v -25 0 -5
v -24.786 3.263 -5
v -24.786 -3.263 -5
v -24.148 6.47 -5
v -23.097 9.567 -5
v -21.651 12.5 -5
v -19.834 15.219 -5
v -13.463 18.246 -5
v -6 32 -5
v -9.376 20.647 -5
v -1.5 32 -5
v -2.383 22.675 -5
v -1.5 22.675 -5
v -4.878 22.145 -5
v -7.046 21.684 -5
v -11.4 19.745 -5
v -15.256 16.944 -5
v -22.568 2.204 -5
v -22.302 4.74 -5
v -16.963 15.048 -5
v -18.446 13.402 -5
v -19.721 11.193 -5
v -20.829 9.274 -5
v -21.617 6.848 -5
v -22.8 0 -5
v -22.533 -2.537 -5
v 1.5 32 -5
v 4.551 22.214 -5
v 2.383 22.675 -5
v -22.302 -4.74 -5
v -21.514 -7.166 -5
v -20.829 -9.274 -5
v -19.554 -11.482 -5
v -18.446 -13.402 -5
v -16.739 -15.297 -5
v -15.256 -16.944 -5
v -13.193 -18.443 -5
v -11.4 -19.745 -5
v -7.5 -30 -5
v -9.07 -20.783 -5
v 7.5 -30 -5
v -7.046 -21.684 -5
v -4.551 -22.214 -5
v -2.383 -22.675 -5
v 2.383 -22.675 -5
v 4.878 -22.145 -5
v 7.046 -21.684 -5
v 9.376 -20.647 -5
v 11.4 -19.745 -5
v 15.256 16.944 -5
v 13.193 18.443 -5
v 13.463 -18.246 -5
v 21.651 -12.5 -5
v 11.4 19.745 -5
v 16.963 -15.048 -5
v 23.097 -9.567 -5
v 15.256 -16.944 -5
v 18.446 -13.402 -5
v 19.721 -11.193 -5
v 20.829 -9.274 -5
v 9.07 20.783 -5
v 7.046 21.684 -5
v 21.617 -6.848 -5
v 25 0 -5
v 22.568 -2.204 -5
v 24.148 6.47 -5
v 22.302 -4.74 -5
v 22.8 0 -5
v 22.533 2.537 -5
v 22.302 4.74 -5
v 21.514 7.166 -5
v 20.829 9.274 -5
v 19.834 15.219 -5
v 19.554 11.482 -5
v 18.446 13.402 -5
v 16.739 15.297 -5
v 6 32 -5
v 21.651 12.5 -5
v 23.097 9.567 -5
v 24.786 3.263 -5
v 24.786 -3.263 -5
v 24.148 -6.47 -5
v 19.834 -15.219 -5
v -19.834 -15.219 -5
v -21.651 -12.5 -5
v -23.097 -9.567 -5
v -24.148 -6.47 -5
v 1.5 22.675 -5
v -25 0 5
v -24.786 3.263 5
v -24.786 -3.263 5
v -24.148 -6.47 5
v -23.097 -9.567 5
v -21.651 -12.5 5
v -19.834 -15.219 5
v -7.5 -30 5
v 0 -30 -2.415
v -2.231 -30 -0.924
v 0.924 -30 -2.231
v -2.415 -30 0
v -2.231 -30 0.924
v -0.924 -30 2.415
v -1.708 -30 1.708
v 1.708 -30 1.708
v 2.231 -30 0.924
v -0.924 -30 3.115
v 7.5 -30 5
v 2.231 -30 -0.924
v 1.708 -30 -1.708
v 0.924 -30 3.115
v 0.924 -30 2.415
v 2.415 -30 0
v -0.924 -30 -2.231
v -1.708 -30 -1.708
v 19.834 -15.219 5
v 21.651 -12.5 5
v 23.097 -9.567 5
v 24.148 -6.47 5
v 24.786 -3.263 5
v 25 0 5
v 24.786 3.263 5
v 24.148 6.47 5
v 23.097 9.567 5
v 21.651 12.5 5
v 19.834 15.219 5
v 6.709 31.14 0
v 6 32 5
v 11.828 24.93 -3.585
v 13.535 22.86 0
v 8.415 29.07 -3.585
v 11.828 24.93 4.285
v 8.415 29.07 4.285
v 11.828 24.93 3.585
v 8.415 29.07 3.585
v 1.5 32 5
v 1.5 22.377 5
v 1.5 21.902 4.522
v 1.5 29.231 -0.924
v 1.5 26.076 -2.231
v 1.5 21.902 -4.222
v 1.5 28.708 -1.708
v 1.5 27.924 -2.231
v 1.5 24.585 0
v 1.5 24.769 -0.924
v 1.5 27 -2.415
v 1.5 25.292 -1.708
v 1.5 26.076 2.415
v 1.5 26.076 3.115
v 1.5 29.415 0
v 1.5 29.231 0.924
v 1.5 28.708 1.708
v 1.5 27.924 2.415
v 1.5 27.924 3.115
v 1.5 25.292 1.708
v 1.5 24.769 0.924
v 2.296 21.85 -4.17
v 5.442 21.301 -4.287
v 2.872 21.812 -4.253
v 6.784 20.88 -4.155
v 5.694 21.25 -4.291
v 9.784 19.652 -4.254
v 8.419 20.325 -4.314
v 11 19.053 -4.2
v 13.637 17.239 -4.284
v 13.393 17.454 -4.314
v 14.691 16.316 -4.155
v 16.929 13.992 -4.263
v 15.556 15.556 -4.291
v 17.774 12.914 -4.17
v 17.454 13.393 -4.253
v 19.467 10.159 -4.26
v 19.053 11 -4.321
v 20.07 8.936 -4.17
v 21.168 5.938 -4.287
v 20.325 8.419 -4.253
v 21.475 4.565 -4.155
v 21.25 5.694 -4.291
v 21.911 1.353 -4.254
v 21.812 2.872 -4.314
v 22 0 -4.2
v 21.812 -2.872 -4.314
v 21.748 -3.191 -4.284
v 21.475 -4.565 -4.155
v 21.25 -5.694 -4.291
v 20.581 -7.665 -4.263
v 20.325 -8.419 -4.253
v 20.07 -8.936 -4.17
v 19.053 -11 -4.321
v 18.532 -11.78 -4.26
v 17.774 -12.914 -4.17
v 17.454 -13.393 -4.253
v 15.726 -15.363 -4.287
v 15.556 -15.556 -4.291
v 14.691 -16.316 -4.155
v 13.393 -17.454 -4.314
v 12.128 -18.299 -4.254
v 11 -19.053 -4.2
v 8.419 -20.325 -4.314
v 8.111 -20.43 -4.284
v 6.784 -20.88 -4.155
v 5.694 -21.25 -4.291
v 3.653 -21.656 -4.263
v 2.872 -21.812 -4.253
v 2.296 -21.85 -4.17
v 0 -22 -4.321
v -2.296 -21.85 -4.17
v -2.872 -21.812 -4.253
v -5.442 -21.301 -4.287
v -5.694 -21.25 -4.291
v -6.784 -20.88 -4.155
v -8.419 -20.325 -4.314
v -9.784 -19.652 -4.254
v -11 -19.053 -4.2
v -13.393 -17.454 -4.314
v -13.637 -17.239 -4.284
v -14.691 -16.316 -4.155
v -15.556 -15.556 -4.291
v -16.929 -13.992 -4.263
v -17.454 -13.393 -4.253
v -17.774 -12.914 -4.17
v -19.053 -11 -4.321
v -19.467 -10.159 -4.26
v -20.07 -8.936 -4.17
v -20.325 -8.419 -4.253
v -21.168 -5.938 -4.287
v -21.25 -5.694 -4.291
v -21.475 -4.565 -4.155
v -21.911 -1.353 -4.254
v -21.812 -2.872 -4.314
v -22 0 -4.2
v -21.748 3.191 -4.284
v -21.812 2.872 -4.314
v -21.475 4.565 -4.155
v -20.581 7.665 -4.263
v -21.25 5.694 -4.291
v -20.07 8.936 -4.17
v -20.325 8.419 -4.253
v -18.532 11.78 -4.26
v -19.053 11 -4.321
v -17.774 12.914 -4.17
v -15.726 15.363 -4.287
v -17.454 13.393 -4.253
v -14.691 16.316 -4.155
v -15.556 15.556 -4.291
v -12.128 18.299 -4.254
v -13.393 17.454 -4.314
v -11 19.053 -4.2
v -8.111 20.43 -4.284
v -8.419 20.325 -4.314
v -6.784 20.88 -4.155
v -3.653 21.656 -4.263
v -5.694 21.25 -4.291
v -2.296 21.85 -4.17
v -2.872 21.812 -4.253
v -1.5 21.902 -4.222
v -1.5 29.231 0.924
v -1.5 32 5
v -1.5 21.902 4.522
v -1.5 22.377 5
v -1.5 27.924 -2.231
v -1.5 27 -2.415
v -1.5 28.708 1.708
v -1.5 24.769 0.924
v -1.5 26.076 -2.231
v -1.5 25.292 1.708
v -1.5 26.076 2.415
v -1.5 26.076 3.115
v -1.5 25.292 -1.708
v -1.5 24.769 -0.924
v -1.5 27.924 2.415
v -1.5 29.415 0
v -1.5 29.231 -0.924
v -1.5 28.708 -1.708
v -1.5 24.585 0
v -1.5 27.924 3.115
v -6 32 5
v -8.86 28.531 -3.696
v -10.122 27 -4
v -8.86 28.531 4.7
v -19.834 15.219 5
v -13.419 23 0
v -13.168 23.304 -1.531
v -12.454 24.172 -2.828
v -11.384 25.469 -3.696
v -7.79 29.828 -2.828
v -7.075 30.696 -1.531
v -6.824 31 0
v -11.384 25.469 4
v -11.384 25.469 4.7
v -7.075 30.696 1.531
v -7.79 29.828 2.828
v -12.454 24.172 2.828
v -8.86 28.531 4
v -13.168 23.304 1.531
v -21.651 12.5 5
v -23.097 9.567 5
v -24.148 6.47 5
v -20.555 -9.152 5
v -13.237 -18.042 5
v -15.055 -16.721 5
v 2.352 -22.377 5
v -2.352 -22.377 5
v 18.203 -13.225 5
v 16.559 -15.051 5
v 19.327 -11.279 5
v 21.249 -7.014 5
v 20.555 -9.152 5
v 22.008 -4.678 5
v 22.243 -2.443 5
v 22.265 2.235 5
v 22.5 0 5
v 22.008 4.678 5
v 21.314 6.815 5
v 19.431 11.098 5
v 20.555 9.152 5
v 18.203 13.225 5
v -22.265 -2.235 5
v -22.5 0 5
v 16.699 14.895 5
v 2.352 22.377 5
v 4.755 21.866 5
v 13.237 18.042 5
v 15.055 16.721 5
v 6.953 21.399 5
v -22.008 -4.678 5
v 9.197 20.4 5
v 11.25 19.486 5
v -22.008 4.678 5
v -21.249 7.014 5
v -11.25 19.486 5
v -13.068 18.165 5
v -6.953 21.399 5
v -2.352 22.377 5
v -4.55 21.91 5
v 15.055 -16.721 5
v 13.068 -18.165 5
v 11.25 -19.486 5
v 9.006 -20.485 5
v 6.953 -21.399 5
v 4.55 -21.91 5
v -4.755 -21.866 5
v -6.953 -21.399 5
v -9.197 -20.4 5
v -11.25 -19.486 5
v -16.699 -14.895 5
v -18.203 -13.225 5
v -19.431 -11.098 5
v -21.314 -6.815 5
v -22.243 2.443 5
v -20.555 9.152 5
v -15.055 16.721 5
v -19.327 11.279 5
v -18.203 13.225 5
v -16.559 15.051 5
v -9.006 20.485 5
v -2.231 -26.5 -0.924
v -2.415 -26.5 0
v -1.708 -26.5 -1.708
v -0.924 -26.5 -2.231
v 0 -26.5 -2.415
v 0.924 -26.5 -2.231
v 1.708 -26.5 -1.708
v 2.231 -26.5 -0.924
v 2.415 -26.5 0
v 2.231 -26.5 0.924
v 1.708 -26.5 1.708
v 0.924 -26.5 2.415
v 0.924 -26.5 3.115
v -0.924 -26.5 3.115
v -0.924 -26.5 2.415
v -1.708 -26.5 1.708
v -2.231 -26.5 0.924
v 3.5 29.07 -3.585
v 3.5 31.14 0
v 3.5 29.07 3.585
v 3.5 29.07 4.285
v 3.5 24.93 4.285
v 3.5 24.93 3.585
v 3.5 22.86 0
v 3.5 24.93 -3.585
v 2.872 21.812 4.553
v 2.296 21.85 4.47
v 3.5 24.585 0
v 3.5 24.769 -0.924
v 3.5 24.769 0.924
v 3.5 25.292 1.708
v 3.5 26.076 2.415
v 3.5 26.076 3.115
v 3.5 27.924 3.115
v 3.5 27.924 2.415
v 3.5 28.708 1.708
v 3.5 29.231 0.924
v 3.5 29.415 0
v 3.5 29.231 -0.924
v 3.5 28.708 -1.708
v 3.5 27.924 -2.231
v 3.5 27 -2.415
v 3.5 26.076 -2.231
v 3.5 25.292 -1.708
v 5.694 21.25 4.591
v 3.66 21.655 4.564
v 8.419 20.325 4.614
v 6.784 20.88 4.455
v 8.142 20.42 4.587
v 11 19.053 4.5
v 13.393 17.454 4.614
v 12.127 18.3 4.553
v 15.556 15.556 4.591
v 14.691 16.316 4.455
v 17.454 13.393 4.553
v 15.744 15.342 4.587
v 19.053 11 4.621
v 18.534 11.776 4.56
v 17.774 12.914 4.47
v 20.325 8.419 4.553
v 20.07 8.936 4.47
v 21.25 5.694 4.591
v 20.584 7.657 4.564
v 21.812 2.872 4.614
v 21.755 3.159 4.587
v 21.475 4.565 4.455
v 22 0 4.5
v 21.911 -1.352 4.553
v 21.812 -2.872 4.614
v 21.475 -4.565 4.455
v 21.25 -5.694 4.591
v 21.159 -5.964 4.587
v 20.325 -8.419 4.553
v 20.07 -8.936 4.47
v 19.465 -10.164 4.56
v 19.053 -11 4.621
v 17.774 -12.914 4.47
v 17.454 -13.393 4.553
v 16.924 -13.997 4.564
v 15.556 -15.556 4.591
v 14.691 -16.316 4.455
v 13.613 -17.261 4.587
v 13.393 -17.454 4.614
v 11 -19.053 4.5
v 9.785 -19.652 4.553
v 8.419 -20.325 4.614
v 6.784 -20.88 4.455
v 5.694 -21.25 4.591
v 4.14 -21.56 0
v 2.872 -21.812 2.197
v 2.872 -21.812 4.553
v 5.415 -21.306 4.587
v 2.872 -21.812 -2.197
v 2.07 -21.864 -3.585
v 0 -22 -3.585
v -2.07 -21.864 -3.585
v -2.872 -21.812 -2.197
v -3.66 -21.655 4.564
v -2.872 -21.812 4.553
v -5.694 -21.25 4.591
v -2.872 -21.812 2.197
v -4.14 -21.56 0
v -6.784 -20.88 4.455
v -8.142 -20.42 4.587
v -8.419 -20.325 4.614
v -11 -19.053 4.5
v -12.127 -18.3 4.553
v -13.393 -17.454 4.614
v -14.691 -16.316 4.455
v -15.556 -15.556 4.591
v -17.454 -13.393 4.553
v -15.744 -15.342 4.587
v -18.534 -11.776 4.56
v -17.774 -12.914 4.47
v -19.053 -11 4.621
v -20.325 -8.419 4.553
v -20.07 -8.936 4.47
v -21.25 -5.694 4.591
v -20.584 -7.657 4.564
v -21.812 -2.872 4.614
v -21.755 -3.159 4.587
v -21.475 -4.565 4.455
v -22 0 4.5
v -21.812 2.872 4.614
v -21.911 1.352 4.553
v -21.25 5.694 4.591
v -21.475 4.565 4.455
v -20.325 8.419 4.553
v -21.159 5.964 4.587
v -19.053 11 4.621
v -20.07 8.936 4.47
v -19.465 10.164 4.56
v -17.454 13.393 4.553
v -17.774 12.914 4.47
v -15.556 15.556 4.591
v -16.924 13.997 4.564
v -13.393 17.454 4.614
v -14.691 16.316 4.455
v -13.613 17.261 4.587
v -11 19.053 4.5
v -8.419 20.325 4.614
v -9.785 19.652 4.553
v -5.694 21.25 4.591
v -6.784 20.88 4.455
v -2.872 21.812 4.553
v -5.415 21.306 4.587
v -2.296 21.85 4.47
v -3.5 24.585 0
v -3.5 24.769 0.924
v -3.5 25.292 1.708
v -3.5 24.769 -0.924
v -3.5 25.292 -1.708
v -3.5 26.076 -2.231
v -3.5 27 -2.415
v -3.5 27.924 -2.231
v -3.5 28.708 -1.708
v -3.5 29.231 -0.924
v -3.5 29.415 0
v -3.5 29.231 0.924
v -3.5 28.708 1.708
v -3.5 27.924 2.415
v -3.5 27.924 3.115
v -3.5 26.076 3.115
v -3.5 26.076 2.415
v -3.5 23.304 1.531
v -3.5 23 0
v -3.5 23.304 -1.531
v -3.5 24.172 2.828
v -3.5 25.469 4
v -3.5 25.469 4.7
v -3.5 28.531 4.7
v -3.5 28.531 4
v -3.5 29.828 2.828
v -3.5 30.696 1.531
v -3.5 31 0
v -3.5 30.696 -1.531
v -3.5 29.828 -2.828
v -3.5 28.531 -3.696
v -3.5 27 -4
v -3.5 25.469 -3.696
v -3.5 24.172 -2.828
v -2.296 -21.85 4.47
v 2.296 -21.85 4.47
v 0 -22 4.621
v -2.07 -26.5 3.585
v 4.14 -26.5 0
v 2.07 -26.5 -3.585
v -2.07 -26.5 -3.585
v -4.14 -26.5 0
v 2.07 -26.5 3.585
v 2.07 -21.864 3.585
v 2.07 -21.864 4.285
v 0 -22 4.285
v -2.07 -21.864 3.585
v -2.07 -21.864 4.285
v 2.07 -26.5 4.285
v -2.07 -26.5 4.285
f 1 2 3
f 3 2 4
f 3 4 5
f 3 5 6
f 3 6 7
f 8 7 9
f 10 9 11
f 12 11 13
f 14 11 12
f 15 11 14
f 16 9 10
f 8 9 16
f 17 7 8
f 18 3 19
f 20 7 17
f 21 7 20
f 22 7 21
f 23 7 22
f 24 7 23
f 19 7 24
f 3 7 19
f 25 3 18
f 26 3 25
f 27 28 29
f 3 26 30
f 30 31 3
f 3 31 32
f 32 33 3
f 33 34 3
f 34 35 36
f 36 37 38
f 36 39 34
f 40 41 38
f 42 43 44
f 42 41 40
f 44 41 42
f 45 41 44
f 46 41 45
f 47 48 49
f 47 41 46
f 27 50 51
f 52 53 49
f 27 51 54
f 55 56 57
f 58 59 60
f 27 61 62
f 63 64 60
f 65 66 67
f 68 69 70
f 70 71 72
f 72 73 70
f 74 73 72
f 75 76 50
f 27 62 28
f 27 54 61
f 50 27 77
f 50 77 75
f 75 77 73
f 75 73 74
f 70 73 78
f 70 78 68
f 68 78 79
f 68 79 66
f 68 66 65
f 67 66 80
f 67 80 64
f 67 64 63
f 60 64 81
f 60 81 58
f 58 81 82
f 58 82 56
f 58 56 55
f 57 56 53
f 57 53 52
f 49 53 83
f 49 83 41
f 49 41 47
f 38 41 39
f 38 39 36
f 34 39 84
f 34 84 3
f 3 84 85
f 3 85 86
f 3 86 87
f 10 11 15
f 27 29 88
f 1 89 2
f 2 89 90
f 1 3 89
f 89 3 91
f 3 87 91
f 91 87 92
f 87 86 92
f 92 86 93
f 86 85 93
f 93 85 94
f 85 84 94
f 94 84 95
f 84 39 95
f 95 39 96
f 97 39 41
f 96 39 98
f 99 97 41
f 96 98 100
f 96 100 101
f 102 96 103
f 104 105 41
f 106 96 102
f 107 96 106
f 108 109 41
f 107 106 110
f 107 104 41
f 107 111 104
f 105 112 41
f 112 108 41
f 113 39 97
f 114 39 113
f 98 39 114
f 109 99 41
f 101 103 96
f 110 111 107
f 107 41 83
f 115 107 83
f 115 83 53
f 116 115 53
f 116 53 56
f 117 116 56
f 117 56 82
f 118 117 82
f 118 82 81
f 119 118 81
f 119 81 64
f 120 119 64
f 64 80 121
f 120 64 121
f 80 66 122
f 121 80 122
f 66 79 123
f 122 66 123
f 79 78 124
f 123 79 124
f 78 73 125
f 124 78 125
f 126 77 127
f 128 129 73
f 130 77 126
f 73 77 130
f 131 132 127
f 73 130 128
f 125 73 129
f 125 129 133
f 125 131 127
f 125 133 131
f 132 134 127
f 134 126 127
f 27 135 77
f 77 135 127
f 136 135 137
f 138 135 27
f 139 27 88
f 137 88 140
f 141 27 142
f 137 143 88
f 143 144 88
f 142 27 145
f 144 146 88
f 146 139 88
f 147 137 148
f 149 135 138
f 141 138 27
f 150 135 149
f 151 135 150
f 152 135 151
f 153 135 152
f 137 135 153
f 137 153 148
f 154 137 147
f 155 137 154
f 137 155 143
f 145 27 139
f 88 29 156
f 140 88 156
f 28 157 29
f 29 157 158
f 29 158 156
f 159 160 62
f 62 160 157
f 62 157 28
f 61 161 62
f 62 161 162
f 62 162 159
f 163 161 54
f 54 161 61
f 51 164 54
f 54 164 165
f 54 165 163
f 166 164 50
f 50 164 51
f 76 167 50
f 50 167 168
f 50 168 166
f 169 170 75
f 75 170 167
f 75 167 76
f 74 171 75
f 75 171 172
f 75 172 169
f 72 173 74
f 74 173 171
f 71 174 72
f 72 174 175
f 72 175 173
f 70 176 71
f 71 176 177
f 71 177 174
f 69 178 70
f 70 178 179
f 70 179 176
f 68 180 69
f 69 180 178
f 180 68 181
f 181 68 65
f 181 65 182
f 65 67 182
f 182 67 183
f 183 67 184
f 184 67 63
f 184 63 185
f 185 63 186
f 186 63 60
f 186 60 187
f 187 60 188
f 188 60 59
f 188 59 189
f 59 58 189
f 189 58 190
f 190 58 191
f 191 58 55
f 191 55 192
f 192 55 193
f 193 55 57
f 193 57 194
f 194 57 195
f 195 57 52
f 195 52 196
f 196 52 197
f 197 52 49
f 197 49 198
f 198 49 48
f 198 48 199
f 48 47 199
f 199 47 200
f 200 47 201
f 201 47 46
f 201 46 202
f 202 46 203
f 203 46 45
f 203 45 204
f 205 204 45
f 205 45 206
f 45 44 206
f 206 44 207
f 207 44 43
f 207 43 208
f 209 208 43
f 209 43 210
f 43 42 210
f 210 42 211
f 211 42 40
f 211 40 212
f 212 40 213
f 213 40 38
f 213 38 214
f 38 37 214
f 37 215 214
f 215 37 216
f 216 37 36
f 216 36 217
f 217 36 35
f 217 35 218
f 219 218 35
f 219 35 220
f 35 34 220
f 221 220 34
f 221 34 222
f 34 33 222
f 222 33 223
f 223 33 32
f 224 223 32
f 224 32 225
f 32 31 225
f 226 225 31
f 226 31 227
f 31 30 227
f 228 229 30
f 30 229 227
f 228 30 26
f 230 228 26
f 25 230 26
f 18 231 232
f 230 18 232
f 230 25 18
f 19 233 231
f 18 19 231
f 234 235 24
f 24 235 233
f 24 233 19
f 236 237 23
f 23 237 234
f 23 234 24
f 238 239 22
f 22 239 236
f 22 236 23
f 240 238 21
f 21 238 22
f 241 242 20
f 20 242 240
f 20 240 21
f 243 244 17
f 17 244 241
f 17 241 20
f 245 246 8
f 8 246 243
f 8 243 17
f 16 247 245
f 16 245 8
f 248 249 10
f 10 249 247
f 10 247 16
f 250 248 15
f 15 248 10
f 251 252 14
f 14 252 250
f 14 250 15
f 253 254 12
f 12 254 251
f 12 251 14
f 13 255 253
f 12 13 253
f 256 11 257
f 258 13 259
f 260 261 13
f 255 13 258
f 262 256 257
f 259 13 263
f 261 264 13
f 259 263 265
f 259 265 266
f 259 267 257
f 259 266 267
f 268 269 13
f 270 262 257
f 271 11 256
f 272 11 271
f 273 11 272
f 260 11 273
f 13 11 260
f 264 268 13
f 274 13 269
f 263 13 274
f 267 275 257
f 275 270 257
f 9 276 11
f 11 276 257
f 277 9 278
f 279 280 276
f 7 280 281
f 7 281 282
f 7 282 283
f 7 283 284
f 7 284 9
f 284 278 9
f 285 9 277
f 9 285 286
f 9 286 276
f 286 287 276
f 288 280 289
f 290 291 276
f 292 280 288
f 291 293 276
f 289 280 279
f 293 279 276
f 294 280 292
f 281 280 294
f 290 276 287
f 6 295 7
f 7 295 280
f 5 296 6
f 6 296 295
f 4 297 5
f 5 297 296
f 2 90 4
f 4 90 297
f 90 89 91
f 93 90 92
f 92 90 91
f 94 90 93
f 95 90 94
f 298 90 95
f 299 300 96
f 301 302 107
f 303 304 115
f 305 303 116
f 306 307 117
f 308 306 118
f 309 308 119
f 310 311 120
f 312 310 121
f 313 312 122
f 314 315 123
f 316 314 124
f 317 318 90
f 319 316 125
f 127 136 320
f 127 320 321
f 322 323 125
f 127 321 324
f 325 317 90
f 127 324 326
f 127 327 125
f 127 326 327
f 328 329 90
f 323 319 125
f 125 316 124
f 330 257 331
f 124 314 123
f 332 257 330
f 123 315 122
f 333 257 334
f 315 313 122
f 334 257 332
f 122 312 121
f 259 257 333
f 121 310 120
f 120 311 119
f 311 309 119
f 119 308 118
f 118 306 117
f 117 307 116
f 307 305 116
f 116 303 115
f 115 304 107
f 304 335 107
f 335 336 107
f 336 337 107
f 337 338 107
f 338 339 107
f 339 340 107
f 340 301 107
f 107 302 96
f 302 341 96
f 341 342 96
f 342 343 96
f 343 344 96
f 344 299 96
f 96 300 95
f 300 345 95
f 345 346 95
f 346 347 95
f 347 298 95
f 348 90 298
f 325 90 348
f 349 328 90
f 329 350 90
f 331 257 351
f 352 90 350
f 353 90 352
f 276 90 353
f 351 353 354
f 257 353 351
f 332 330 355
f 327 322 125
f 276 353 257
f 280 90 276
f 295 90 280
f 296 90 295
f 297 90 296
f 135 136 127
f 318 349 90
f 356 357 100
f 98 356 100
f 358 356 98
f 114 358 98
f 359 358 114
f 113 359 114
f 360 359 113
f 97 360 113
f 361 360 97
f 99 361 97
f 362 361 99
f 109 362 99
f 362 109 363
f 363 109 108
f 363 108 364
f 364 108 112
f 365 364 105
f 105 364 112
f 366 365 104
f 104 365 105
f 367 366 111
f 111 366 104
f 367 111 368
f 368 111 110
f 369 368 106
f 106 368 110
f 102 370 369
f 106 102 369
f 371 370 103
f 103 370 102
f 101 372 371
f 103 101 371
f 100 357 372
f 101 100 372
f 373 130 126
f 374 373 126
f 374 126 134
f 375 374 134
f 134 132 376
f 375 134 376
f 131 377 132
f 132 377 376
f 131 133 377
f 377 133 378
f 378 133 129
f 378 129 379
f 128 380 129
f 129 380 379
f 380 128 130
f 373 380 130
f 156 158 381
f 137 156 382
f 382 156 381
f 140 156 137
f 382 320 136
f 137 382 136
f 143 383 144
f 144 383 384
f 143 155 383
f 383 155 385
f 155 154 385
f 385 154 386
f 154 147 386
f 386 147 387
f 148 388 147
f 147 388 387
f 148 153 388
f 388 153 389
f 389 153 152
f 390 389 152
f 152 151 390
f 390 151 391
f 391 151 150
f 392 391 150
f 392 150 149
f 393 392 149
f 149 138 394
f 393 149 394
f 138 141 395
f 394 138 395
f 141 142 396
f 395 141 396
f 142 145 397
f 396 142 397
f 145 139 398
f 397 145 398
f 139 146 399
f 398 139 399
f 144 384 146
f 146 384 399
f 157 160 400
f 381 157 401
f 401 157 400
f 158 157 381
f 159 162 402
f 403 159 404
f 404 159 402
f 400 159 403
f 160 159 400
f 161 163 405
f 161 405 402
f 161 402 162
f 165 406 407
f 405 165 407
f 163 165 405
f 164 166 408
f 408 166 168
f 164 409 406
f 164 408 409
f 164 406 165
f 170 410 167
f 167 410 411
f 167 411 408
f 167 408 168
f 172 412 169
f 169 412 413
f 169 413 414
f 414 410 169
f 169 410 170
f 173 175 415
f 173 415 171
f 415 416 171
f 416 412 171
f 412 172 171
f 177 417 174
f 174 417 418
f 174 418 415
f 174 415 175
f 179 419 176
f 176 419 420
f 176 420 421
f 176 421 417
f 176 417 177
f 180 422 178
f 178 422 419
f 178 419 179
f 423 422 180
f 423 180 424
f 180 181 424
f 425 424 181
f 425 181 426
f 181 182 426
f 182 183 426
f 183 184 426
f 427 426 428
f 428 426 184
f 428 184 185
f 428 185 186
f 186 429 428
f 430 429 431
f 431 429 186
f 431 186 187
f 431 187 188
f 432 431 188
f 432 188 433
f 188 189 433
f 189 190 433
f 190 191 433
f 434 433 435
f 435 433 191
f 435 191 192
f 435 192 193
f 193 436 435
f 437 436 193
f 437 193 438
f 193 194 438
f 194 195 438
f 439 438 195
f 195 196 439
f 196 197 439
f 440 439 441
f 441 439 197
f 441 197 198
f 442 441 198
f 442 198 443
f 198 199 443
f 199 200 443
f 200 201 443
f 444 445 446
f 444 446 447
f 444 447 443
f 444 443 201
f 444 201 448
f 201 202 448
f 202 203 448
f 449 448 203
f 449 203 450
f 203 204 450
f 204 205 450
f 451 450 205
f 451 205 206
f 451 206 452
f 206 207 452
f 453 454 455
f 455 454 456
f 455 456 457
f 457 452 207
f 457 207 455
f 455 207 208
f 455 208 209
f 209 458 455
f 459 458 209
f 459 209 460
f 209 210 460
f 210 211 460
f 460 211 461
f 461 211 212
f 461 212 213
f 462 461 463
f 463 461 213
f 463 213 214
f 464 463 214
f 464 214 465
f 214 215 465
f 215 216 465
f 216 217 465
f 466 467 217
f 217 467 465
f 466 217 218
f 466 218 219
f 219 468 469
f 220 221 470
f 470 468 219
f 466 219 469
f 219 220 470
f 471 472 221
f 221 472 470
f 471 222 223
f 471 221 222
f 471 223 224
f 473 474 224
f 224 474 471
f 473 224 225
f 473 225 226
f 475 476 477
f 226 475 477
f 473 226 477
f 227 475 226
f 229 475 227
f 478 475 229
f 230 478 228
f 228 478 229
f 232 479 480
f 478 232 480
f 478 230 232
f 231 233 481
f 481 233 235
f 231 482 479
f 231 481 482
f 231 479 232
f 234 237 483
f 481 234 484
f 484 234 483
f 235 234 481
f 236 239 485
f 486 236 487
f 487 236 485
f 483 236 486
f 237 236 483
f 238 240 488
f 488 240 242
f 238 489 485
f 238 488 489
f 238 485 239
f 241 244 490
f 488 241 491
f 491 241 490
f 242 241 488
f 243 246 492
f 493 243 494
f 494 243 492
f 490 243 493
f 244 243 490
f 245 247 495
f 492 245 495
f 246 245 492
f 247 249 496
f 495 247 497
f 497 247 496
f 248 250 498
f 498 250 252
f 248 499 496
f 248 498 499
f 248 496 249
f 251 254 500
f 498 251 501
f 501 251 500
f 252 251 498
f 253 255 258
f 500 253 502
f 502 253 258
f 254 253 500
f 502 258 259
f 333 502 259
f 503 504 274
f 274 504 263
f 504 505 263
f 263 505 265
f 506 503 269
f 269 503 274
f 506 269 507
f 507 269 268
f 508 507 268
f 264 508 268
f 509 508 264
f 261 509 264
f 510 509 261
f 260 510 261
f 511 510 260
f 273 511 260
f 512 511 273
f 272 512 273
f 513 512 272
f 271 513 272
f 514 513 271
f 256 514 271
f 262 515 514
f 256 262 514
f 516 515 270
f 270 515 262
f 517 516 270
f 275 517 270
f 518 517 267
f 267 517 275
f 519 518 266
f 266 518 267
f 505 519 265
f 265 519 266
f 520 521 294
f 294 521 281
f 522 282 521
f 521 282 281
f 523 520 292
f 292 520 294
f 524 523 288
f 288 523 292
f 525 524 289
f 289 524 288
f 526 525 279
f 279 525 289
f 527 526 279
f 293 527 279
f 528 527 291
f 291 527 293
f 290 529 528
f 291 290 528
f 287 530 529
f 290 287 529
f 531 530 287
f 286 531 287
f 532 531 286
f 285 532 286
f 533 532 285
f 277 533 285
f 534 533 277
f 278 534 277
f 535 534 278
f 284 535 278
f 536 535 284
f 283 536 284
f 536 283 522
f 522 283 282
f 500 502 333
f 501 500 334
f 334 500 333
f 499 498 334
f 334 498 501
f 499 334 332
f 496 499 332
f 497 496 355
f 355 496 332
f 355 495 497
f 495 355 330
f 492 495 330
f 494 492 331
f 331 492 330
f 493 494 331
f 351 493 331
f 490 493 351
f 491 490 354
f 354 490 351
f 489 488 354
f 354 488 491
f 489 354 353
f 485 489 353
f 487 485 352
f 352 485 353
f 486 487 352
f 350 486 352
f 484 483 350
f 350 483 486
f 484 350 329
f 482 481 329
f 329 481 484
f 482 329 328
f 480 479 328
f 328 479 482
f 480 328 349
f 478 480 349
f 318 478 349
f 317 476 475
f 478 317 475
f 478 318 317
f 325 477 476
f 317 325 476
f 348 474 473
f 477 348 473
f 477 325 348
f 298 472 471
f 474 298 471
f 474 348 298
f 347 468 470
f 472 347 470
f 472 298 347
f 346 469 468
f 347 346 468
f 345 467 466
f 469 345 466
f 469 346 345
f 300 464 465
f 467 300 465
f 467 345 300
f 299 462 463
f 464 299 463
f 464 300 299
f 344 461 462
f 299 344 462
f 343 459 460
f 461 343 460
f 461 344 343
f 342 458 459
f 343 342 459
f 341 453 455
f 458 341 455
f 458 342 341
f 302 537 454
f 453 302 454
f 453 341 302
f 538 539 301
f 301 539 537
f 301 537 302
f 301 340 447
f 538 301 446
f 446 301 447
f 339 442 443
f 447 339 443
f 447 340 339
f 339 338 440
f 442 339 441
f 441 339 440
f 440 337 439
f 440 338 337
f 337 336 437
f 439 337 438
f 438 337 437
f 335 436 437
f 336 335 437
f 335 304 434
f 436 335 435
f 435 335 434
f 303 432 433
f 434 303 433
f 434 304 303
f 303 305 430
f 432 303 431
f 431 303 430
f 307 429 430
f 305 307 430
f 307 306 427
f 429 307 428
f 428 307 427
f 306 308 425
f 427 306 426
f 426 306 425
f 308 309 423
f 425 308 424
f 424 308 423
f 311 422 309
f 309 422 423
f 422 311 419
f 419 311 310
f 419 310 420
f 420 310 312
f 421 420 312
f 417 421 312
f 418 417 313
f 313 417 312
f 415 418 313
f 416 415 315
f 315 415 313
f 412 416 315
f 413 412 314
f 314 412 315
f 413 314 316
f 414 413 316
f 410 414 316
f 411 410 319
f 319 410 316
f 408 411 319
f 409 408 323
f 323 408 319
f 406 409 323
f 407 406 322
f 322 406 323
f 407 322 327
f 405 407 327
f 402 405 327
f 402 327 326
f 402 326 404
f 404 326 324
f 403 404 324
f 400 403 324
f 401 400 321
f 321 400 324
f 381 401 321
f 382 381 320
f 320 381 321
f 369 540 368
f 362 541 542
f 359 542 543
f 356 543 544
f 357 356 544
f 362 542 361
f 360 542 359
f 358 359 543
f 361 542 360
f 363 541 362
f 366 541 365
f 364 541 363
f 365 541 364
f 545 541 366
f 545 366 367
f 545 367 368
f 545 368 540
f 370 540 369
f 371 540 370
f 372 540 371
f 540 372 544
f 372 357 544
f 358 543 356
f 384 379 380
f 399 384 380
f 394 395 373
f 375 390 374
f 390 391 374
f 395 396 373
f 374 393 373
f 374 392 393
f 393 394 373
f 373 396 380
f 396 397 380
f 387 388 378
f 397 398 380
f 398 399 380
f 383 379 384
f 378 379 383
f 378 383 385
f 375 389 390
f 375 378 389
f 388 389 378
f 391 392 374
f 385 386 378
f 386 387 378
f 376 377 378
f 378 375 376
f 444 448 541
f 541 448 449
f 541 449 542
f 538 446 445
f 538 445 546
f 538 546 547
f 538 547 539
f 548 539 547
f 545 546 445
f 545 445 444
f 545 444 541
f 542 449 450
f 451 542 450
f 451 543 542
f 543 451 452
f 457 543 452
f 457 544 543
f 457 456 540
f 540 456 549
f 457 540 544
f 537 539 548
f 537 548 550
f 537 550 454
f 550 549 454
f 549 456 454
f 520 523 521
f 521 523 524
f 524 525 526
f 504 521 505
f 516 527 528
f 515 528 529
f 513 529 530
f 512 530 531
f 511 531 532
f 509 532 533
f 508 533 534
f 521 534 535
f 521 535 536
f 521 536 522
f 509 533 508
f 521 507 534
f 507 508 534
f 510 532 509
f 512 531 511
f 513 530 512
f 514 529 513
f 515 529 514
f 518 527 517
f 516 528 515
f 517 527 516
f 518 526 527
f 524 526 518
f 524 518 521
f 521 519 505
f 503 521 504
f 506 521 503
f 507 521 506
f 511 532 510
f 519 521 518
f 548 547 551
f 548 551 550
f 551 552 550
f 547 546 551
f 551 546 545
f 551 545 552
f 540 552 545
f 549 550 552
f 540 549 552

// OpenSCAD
// file: ../standard_optomechanics/cylinder_clamp.scad
use <../utilities.scad>;
d=0.05;

//for 1 inch/25mm post clamp, an inner radius of 12.8 is good.
	
module cylinder_clamp(
	inner_r=12.8, //radius of the cylinder being clamped (ish!)
	clamp_h=11, //thicknedess of the clamp along the cylinder axis
	clamp_t=4, //thickness of the clamp radially
	flat_t=8, //how thick the bottom of the clamp is (often need to allow for the mounting bolt head here)
	flat_width=15, //width of the flat base
	mounting_bolt=4, //nominal size of mounting bolt (default is 4 for M4, 0 to disable)
	nut_trap=false,
	bevel_top=0.5, //size of 45 degree bevel on top surface
	bevel_bottom=0.8 //size of 45 degree bevel on bottom of hole
	){
	assign(
		post_r = inner_r, //poor initial choice of name!
		bolt_flat_w=10, //width of the region where the bolt is
		gap_w=3 //size of the gap that is squeezed by the bolt
	)
	difference(){
		hull(){
			cylinder(h=clamp_h,r=post_r+clamp_t,center=true,$fn=48);
			translate([0,-post_r-flat_t/2,0]) cube([flat_width,flat_t,clamp_h],center=true);
			translate([0,post_r+bolt_flat_w/2,0]) cube([12,bolt_flat_w,clamp_h],center=true);
		}
	
		cylinder(h=9999,r=post_r,center=true,$fn=48); //cylinder being clamped
		//bevels, top and bottom
		translate([0,0,-clamp_h/2]) cylinder(r1=post_r+3*bevel_bottom,r2=post_r-bevel_bottom,h=4*bevel_bottom,center=true);
		translate([0,0,clamp_h/2]) cylinder(r2=post_r+3*bevel_top,r1=post_r-bevel_top,h=4*bevel_top,center=true);
		//gap (squeezed by bolt)
		translate([0,999,0]) cube([gap_w,999*2,999],center=true); //gap
	
		//clamping bolt
		translate([gap_w/2+2,post_r+bolt_flat_w/2,0]) rotate([0,0,-90]) nut_y(4,h=999,shaft=true);
		translate([-gap_w/2-2,post_r+bolt_flat_w/2,0]) rotate([0,0,90]) cylinder_with_45deg_top(r=4,h=999,$fn=16); //counterbore for nut head
	
		if(mounting_bolt > 0){
			//mounting bolt
			translate([0,-post_r-4.5,0]) rotate([-90,0,0]){
				intersection(){
					rotate([90,0,0])
						if(nut_trap){
							nut_y(mounting_bolt,fudge=1.15,shaft=true,h=999);
						}else{
							screw_y(mounting_bolt,fudge=1.07,shaft=true,h=999);
						}
					cube([inner_r*2,inner_r*2,clamp_h*2],center=true);
				}
			}
		}
		//in the case of thick clamps with thin flats, this keeps the bottom flat
		translate([0,-inner_r-flat_t-999,0]) cube([9999,999*2,9999],center=true);
	}
}

module cylinder_clamp_v(
	inner_r=12.8, //radius of the cylinder being clamped (ish!)
	clamp_h=10, //width of the clamp along the cylinder (y) axis
	clamp_t=4, //thickness of the clamp radially
	flat_t=8, //how thick the bottom of the clamp is (often need to allow for the mounting bolt head here)
	flat_width=15, //width of the flat base
	mounting_bolt=4, //nominal size of mounting bolt (default is 4 for M4, 0 to disable)
	bevel=0.5 //put a 45 degree bevel on the edges of the hole
	){
	assign(
		post_r = inner_r, //poor initial choice of name!
		bolt_flat_w=11, //width of the region where the bolt is
		gap_w=2*inner_r*sin(45/2),//sin(acos(1-(9/2-4/2*1.22)/inner_r))*inner_r //size of the gap that is squeezed by the bolt
		bolt_z = inner_r+4/2*1.22+d //position of bolt (so bolt just clears the cylinder we're clamping
	)assign( //the second assign statement allows us to use gap_w
		bolt_span=gap_w+4+d//max(2*inner_r*sin(acos(1-(9/2-4/2*1.22)/inner_r)), gap_w+4)
	)
	difference(){
		hull(){
			rotate([90,0,0]) cylinder(h=clamp_h,r=inner_r+clamp_t,center=true,$fn=48);
			translate([0,0,-inner_r-flat_t/2]) cube([flat_width,clamp_h,flat_t],center=true);
			translate([0,0,bolt_z]) cube([gap_w+9,clamp_h,bolt_flat_w],center=true);
		}
	
		cylinder_with_45deg_top(h=9999,r=post_r,center=true,$fn=48); //cylinder being clamped
		reflect([0,1,0]) translate([0,clamp_h/2,0]) rotate([90,0,0]) cylinder(r1=post_r+3*bevel,r2=post_r-bevel,h=4*bevel,center=true); //bevel
		translate([0,0,999]) cube([gap_w,999,999*2],center=true); //gap
	
		//clamping bolt
		translate([bolt_span/2,0,bolt_z]) rotate([0,0,-90]) nut_y(4,h=999,shaft=true);
		translate([-bolt_span/2,0,bolt_z]) rotate([0,0,90]) cylinder_with_45deg_top(r=4,h=999,$fn=16); //counterbore for nut head
	
		if(mounting_bolt > 0){
			//mounting bolt
			translate([0,0,-post_r-4.5]){
				cylinder(r=mounting_bolt*1.1,h=post_r,$fn=16);
				cylinder(r=mounting_bolt/2*1.22,h=flat_t*2,center=true,$fn=16);
			}
		}
		translate([0,0,-inner_r-flat_t-999]) cube([9999,9999,999*2],center=true);
	}
}

translate([0,30,0]) cylinder_clamp_v(30.5/2, 10, flat_width=24, mounting_bolt=4, flat_t=8);

cylinder_clamp(30.5/2, flat_width=24, mounting_bolt=4, flat_t=8,nut_trap=true);
// main file
use <../standard_optomechanics/cylinder_clamp.scad>;
use <../utilities.scad>;

cylinder_clamp(inner_r=22,clamp_h=10,mounting_bolt=4,flat_w=10,clamp_t=3,nut_trap=true);
